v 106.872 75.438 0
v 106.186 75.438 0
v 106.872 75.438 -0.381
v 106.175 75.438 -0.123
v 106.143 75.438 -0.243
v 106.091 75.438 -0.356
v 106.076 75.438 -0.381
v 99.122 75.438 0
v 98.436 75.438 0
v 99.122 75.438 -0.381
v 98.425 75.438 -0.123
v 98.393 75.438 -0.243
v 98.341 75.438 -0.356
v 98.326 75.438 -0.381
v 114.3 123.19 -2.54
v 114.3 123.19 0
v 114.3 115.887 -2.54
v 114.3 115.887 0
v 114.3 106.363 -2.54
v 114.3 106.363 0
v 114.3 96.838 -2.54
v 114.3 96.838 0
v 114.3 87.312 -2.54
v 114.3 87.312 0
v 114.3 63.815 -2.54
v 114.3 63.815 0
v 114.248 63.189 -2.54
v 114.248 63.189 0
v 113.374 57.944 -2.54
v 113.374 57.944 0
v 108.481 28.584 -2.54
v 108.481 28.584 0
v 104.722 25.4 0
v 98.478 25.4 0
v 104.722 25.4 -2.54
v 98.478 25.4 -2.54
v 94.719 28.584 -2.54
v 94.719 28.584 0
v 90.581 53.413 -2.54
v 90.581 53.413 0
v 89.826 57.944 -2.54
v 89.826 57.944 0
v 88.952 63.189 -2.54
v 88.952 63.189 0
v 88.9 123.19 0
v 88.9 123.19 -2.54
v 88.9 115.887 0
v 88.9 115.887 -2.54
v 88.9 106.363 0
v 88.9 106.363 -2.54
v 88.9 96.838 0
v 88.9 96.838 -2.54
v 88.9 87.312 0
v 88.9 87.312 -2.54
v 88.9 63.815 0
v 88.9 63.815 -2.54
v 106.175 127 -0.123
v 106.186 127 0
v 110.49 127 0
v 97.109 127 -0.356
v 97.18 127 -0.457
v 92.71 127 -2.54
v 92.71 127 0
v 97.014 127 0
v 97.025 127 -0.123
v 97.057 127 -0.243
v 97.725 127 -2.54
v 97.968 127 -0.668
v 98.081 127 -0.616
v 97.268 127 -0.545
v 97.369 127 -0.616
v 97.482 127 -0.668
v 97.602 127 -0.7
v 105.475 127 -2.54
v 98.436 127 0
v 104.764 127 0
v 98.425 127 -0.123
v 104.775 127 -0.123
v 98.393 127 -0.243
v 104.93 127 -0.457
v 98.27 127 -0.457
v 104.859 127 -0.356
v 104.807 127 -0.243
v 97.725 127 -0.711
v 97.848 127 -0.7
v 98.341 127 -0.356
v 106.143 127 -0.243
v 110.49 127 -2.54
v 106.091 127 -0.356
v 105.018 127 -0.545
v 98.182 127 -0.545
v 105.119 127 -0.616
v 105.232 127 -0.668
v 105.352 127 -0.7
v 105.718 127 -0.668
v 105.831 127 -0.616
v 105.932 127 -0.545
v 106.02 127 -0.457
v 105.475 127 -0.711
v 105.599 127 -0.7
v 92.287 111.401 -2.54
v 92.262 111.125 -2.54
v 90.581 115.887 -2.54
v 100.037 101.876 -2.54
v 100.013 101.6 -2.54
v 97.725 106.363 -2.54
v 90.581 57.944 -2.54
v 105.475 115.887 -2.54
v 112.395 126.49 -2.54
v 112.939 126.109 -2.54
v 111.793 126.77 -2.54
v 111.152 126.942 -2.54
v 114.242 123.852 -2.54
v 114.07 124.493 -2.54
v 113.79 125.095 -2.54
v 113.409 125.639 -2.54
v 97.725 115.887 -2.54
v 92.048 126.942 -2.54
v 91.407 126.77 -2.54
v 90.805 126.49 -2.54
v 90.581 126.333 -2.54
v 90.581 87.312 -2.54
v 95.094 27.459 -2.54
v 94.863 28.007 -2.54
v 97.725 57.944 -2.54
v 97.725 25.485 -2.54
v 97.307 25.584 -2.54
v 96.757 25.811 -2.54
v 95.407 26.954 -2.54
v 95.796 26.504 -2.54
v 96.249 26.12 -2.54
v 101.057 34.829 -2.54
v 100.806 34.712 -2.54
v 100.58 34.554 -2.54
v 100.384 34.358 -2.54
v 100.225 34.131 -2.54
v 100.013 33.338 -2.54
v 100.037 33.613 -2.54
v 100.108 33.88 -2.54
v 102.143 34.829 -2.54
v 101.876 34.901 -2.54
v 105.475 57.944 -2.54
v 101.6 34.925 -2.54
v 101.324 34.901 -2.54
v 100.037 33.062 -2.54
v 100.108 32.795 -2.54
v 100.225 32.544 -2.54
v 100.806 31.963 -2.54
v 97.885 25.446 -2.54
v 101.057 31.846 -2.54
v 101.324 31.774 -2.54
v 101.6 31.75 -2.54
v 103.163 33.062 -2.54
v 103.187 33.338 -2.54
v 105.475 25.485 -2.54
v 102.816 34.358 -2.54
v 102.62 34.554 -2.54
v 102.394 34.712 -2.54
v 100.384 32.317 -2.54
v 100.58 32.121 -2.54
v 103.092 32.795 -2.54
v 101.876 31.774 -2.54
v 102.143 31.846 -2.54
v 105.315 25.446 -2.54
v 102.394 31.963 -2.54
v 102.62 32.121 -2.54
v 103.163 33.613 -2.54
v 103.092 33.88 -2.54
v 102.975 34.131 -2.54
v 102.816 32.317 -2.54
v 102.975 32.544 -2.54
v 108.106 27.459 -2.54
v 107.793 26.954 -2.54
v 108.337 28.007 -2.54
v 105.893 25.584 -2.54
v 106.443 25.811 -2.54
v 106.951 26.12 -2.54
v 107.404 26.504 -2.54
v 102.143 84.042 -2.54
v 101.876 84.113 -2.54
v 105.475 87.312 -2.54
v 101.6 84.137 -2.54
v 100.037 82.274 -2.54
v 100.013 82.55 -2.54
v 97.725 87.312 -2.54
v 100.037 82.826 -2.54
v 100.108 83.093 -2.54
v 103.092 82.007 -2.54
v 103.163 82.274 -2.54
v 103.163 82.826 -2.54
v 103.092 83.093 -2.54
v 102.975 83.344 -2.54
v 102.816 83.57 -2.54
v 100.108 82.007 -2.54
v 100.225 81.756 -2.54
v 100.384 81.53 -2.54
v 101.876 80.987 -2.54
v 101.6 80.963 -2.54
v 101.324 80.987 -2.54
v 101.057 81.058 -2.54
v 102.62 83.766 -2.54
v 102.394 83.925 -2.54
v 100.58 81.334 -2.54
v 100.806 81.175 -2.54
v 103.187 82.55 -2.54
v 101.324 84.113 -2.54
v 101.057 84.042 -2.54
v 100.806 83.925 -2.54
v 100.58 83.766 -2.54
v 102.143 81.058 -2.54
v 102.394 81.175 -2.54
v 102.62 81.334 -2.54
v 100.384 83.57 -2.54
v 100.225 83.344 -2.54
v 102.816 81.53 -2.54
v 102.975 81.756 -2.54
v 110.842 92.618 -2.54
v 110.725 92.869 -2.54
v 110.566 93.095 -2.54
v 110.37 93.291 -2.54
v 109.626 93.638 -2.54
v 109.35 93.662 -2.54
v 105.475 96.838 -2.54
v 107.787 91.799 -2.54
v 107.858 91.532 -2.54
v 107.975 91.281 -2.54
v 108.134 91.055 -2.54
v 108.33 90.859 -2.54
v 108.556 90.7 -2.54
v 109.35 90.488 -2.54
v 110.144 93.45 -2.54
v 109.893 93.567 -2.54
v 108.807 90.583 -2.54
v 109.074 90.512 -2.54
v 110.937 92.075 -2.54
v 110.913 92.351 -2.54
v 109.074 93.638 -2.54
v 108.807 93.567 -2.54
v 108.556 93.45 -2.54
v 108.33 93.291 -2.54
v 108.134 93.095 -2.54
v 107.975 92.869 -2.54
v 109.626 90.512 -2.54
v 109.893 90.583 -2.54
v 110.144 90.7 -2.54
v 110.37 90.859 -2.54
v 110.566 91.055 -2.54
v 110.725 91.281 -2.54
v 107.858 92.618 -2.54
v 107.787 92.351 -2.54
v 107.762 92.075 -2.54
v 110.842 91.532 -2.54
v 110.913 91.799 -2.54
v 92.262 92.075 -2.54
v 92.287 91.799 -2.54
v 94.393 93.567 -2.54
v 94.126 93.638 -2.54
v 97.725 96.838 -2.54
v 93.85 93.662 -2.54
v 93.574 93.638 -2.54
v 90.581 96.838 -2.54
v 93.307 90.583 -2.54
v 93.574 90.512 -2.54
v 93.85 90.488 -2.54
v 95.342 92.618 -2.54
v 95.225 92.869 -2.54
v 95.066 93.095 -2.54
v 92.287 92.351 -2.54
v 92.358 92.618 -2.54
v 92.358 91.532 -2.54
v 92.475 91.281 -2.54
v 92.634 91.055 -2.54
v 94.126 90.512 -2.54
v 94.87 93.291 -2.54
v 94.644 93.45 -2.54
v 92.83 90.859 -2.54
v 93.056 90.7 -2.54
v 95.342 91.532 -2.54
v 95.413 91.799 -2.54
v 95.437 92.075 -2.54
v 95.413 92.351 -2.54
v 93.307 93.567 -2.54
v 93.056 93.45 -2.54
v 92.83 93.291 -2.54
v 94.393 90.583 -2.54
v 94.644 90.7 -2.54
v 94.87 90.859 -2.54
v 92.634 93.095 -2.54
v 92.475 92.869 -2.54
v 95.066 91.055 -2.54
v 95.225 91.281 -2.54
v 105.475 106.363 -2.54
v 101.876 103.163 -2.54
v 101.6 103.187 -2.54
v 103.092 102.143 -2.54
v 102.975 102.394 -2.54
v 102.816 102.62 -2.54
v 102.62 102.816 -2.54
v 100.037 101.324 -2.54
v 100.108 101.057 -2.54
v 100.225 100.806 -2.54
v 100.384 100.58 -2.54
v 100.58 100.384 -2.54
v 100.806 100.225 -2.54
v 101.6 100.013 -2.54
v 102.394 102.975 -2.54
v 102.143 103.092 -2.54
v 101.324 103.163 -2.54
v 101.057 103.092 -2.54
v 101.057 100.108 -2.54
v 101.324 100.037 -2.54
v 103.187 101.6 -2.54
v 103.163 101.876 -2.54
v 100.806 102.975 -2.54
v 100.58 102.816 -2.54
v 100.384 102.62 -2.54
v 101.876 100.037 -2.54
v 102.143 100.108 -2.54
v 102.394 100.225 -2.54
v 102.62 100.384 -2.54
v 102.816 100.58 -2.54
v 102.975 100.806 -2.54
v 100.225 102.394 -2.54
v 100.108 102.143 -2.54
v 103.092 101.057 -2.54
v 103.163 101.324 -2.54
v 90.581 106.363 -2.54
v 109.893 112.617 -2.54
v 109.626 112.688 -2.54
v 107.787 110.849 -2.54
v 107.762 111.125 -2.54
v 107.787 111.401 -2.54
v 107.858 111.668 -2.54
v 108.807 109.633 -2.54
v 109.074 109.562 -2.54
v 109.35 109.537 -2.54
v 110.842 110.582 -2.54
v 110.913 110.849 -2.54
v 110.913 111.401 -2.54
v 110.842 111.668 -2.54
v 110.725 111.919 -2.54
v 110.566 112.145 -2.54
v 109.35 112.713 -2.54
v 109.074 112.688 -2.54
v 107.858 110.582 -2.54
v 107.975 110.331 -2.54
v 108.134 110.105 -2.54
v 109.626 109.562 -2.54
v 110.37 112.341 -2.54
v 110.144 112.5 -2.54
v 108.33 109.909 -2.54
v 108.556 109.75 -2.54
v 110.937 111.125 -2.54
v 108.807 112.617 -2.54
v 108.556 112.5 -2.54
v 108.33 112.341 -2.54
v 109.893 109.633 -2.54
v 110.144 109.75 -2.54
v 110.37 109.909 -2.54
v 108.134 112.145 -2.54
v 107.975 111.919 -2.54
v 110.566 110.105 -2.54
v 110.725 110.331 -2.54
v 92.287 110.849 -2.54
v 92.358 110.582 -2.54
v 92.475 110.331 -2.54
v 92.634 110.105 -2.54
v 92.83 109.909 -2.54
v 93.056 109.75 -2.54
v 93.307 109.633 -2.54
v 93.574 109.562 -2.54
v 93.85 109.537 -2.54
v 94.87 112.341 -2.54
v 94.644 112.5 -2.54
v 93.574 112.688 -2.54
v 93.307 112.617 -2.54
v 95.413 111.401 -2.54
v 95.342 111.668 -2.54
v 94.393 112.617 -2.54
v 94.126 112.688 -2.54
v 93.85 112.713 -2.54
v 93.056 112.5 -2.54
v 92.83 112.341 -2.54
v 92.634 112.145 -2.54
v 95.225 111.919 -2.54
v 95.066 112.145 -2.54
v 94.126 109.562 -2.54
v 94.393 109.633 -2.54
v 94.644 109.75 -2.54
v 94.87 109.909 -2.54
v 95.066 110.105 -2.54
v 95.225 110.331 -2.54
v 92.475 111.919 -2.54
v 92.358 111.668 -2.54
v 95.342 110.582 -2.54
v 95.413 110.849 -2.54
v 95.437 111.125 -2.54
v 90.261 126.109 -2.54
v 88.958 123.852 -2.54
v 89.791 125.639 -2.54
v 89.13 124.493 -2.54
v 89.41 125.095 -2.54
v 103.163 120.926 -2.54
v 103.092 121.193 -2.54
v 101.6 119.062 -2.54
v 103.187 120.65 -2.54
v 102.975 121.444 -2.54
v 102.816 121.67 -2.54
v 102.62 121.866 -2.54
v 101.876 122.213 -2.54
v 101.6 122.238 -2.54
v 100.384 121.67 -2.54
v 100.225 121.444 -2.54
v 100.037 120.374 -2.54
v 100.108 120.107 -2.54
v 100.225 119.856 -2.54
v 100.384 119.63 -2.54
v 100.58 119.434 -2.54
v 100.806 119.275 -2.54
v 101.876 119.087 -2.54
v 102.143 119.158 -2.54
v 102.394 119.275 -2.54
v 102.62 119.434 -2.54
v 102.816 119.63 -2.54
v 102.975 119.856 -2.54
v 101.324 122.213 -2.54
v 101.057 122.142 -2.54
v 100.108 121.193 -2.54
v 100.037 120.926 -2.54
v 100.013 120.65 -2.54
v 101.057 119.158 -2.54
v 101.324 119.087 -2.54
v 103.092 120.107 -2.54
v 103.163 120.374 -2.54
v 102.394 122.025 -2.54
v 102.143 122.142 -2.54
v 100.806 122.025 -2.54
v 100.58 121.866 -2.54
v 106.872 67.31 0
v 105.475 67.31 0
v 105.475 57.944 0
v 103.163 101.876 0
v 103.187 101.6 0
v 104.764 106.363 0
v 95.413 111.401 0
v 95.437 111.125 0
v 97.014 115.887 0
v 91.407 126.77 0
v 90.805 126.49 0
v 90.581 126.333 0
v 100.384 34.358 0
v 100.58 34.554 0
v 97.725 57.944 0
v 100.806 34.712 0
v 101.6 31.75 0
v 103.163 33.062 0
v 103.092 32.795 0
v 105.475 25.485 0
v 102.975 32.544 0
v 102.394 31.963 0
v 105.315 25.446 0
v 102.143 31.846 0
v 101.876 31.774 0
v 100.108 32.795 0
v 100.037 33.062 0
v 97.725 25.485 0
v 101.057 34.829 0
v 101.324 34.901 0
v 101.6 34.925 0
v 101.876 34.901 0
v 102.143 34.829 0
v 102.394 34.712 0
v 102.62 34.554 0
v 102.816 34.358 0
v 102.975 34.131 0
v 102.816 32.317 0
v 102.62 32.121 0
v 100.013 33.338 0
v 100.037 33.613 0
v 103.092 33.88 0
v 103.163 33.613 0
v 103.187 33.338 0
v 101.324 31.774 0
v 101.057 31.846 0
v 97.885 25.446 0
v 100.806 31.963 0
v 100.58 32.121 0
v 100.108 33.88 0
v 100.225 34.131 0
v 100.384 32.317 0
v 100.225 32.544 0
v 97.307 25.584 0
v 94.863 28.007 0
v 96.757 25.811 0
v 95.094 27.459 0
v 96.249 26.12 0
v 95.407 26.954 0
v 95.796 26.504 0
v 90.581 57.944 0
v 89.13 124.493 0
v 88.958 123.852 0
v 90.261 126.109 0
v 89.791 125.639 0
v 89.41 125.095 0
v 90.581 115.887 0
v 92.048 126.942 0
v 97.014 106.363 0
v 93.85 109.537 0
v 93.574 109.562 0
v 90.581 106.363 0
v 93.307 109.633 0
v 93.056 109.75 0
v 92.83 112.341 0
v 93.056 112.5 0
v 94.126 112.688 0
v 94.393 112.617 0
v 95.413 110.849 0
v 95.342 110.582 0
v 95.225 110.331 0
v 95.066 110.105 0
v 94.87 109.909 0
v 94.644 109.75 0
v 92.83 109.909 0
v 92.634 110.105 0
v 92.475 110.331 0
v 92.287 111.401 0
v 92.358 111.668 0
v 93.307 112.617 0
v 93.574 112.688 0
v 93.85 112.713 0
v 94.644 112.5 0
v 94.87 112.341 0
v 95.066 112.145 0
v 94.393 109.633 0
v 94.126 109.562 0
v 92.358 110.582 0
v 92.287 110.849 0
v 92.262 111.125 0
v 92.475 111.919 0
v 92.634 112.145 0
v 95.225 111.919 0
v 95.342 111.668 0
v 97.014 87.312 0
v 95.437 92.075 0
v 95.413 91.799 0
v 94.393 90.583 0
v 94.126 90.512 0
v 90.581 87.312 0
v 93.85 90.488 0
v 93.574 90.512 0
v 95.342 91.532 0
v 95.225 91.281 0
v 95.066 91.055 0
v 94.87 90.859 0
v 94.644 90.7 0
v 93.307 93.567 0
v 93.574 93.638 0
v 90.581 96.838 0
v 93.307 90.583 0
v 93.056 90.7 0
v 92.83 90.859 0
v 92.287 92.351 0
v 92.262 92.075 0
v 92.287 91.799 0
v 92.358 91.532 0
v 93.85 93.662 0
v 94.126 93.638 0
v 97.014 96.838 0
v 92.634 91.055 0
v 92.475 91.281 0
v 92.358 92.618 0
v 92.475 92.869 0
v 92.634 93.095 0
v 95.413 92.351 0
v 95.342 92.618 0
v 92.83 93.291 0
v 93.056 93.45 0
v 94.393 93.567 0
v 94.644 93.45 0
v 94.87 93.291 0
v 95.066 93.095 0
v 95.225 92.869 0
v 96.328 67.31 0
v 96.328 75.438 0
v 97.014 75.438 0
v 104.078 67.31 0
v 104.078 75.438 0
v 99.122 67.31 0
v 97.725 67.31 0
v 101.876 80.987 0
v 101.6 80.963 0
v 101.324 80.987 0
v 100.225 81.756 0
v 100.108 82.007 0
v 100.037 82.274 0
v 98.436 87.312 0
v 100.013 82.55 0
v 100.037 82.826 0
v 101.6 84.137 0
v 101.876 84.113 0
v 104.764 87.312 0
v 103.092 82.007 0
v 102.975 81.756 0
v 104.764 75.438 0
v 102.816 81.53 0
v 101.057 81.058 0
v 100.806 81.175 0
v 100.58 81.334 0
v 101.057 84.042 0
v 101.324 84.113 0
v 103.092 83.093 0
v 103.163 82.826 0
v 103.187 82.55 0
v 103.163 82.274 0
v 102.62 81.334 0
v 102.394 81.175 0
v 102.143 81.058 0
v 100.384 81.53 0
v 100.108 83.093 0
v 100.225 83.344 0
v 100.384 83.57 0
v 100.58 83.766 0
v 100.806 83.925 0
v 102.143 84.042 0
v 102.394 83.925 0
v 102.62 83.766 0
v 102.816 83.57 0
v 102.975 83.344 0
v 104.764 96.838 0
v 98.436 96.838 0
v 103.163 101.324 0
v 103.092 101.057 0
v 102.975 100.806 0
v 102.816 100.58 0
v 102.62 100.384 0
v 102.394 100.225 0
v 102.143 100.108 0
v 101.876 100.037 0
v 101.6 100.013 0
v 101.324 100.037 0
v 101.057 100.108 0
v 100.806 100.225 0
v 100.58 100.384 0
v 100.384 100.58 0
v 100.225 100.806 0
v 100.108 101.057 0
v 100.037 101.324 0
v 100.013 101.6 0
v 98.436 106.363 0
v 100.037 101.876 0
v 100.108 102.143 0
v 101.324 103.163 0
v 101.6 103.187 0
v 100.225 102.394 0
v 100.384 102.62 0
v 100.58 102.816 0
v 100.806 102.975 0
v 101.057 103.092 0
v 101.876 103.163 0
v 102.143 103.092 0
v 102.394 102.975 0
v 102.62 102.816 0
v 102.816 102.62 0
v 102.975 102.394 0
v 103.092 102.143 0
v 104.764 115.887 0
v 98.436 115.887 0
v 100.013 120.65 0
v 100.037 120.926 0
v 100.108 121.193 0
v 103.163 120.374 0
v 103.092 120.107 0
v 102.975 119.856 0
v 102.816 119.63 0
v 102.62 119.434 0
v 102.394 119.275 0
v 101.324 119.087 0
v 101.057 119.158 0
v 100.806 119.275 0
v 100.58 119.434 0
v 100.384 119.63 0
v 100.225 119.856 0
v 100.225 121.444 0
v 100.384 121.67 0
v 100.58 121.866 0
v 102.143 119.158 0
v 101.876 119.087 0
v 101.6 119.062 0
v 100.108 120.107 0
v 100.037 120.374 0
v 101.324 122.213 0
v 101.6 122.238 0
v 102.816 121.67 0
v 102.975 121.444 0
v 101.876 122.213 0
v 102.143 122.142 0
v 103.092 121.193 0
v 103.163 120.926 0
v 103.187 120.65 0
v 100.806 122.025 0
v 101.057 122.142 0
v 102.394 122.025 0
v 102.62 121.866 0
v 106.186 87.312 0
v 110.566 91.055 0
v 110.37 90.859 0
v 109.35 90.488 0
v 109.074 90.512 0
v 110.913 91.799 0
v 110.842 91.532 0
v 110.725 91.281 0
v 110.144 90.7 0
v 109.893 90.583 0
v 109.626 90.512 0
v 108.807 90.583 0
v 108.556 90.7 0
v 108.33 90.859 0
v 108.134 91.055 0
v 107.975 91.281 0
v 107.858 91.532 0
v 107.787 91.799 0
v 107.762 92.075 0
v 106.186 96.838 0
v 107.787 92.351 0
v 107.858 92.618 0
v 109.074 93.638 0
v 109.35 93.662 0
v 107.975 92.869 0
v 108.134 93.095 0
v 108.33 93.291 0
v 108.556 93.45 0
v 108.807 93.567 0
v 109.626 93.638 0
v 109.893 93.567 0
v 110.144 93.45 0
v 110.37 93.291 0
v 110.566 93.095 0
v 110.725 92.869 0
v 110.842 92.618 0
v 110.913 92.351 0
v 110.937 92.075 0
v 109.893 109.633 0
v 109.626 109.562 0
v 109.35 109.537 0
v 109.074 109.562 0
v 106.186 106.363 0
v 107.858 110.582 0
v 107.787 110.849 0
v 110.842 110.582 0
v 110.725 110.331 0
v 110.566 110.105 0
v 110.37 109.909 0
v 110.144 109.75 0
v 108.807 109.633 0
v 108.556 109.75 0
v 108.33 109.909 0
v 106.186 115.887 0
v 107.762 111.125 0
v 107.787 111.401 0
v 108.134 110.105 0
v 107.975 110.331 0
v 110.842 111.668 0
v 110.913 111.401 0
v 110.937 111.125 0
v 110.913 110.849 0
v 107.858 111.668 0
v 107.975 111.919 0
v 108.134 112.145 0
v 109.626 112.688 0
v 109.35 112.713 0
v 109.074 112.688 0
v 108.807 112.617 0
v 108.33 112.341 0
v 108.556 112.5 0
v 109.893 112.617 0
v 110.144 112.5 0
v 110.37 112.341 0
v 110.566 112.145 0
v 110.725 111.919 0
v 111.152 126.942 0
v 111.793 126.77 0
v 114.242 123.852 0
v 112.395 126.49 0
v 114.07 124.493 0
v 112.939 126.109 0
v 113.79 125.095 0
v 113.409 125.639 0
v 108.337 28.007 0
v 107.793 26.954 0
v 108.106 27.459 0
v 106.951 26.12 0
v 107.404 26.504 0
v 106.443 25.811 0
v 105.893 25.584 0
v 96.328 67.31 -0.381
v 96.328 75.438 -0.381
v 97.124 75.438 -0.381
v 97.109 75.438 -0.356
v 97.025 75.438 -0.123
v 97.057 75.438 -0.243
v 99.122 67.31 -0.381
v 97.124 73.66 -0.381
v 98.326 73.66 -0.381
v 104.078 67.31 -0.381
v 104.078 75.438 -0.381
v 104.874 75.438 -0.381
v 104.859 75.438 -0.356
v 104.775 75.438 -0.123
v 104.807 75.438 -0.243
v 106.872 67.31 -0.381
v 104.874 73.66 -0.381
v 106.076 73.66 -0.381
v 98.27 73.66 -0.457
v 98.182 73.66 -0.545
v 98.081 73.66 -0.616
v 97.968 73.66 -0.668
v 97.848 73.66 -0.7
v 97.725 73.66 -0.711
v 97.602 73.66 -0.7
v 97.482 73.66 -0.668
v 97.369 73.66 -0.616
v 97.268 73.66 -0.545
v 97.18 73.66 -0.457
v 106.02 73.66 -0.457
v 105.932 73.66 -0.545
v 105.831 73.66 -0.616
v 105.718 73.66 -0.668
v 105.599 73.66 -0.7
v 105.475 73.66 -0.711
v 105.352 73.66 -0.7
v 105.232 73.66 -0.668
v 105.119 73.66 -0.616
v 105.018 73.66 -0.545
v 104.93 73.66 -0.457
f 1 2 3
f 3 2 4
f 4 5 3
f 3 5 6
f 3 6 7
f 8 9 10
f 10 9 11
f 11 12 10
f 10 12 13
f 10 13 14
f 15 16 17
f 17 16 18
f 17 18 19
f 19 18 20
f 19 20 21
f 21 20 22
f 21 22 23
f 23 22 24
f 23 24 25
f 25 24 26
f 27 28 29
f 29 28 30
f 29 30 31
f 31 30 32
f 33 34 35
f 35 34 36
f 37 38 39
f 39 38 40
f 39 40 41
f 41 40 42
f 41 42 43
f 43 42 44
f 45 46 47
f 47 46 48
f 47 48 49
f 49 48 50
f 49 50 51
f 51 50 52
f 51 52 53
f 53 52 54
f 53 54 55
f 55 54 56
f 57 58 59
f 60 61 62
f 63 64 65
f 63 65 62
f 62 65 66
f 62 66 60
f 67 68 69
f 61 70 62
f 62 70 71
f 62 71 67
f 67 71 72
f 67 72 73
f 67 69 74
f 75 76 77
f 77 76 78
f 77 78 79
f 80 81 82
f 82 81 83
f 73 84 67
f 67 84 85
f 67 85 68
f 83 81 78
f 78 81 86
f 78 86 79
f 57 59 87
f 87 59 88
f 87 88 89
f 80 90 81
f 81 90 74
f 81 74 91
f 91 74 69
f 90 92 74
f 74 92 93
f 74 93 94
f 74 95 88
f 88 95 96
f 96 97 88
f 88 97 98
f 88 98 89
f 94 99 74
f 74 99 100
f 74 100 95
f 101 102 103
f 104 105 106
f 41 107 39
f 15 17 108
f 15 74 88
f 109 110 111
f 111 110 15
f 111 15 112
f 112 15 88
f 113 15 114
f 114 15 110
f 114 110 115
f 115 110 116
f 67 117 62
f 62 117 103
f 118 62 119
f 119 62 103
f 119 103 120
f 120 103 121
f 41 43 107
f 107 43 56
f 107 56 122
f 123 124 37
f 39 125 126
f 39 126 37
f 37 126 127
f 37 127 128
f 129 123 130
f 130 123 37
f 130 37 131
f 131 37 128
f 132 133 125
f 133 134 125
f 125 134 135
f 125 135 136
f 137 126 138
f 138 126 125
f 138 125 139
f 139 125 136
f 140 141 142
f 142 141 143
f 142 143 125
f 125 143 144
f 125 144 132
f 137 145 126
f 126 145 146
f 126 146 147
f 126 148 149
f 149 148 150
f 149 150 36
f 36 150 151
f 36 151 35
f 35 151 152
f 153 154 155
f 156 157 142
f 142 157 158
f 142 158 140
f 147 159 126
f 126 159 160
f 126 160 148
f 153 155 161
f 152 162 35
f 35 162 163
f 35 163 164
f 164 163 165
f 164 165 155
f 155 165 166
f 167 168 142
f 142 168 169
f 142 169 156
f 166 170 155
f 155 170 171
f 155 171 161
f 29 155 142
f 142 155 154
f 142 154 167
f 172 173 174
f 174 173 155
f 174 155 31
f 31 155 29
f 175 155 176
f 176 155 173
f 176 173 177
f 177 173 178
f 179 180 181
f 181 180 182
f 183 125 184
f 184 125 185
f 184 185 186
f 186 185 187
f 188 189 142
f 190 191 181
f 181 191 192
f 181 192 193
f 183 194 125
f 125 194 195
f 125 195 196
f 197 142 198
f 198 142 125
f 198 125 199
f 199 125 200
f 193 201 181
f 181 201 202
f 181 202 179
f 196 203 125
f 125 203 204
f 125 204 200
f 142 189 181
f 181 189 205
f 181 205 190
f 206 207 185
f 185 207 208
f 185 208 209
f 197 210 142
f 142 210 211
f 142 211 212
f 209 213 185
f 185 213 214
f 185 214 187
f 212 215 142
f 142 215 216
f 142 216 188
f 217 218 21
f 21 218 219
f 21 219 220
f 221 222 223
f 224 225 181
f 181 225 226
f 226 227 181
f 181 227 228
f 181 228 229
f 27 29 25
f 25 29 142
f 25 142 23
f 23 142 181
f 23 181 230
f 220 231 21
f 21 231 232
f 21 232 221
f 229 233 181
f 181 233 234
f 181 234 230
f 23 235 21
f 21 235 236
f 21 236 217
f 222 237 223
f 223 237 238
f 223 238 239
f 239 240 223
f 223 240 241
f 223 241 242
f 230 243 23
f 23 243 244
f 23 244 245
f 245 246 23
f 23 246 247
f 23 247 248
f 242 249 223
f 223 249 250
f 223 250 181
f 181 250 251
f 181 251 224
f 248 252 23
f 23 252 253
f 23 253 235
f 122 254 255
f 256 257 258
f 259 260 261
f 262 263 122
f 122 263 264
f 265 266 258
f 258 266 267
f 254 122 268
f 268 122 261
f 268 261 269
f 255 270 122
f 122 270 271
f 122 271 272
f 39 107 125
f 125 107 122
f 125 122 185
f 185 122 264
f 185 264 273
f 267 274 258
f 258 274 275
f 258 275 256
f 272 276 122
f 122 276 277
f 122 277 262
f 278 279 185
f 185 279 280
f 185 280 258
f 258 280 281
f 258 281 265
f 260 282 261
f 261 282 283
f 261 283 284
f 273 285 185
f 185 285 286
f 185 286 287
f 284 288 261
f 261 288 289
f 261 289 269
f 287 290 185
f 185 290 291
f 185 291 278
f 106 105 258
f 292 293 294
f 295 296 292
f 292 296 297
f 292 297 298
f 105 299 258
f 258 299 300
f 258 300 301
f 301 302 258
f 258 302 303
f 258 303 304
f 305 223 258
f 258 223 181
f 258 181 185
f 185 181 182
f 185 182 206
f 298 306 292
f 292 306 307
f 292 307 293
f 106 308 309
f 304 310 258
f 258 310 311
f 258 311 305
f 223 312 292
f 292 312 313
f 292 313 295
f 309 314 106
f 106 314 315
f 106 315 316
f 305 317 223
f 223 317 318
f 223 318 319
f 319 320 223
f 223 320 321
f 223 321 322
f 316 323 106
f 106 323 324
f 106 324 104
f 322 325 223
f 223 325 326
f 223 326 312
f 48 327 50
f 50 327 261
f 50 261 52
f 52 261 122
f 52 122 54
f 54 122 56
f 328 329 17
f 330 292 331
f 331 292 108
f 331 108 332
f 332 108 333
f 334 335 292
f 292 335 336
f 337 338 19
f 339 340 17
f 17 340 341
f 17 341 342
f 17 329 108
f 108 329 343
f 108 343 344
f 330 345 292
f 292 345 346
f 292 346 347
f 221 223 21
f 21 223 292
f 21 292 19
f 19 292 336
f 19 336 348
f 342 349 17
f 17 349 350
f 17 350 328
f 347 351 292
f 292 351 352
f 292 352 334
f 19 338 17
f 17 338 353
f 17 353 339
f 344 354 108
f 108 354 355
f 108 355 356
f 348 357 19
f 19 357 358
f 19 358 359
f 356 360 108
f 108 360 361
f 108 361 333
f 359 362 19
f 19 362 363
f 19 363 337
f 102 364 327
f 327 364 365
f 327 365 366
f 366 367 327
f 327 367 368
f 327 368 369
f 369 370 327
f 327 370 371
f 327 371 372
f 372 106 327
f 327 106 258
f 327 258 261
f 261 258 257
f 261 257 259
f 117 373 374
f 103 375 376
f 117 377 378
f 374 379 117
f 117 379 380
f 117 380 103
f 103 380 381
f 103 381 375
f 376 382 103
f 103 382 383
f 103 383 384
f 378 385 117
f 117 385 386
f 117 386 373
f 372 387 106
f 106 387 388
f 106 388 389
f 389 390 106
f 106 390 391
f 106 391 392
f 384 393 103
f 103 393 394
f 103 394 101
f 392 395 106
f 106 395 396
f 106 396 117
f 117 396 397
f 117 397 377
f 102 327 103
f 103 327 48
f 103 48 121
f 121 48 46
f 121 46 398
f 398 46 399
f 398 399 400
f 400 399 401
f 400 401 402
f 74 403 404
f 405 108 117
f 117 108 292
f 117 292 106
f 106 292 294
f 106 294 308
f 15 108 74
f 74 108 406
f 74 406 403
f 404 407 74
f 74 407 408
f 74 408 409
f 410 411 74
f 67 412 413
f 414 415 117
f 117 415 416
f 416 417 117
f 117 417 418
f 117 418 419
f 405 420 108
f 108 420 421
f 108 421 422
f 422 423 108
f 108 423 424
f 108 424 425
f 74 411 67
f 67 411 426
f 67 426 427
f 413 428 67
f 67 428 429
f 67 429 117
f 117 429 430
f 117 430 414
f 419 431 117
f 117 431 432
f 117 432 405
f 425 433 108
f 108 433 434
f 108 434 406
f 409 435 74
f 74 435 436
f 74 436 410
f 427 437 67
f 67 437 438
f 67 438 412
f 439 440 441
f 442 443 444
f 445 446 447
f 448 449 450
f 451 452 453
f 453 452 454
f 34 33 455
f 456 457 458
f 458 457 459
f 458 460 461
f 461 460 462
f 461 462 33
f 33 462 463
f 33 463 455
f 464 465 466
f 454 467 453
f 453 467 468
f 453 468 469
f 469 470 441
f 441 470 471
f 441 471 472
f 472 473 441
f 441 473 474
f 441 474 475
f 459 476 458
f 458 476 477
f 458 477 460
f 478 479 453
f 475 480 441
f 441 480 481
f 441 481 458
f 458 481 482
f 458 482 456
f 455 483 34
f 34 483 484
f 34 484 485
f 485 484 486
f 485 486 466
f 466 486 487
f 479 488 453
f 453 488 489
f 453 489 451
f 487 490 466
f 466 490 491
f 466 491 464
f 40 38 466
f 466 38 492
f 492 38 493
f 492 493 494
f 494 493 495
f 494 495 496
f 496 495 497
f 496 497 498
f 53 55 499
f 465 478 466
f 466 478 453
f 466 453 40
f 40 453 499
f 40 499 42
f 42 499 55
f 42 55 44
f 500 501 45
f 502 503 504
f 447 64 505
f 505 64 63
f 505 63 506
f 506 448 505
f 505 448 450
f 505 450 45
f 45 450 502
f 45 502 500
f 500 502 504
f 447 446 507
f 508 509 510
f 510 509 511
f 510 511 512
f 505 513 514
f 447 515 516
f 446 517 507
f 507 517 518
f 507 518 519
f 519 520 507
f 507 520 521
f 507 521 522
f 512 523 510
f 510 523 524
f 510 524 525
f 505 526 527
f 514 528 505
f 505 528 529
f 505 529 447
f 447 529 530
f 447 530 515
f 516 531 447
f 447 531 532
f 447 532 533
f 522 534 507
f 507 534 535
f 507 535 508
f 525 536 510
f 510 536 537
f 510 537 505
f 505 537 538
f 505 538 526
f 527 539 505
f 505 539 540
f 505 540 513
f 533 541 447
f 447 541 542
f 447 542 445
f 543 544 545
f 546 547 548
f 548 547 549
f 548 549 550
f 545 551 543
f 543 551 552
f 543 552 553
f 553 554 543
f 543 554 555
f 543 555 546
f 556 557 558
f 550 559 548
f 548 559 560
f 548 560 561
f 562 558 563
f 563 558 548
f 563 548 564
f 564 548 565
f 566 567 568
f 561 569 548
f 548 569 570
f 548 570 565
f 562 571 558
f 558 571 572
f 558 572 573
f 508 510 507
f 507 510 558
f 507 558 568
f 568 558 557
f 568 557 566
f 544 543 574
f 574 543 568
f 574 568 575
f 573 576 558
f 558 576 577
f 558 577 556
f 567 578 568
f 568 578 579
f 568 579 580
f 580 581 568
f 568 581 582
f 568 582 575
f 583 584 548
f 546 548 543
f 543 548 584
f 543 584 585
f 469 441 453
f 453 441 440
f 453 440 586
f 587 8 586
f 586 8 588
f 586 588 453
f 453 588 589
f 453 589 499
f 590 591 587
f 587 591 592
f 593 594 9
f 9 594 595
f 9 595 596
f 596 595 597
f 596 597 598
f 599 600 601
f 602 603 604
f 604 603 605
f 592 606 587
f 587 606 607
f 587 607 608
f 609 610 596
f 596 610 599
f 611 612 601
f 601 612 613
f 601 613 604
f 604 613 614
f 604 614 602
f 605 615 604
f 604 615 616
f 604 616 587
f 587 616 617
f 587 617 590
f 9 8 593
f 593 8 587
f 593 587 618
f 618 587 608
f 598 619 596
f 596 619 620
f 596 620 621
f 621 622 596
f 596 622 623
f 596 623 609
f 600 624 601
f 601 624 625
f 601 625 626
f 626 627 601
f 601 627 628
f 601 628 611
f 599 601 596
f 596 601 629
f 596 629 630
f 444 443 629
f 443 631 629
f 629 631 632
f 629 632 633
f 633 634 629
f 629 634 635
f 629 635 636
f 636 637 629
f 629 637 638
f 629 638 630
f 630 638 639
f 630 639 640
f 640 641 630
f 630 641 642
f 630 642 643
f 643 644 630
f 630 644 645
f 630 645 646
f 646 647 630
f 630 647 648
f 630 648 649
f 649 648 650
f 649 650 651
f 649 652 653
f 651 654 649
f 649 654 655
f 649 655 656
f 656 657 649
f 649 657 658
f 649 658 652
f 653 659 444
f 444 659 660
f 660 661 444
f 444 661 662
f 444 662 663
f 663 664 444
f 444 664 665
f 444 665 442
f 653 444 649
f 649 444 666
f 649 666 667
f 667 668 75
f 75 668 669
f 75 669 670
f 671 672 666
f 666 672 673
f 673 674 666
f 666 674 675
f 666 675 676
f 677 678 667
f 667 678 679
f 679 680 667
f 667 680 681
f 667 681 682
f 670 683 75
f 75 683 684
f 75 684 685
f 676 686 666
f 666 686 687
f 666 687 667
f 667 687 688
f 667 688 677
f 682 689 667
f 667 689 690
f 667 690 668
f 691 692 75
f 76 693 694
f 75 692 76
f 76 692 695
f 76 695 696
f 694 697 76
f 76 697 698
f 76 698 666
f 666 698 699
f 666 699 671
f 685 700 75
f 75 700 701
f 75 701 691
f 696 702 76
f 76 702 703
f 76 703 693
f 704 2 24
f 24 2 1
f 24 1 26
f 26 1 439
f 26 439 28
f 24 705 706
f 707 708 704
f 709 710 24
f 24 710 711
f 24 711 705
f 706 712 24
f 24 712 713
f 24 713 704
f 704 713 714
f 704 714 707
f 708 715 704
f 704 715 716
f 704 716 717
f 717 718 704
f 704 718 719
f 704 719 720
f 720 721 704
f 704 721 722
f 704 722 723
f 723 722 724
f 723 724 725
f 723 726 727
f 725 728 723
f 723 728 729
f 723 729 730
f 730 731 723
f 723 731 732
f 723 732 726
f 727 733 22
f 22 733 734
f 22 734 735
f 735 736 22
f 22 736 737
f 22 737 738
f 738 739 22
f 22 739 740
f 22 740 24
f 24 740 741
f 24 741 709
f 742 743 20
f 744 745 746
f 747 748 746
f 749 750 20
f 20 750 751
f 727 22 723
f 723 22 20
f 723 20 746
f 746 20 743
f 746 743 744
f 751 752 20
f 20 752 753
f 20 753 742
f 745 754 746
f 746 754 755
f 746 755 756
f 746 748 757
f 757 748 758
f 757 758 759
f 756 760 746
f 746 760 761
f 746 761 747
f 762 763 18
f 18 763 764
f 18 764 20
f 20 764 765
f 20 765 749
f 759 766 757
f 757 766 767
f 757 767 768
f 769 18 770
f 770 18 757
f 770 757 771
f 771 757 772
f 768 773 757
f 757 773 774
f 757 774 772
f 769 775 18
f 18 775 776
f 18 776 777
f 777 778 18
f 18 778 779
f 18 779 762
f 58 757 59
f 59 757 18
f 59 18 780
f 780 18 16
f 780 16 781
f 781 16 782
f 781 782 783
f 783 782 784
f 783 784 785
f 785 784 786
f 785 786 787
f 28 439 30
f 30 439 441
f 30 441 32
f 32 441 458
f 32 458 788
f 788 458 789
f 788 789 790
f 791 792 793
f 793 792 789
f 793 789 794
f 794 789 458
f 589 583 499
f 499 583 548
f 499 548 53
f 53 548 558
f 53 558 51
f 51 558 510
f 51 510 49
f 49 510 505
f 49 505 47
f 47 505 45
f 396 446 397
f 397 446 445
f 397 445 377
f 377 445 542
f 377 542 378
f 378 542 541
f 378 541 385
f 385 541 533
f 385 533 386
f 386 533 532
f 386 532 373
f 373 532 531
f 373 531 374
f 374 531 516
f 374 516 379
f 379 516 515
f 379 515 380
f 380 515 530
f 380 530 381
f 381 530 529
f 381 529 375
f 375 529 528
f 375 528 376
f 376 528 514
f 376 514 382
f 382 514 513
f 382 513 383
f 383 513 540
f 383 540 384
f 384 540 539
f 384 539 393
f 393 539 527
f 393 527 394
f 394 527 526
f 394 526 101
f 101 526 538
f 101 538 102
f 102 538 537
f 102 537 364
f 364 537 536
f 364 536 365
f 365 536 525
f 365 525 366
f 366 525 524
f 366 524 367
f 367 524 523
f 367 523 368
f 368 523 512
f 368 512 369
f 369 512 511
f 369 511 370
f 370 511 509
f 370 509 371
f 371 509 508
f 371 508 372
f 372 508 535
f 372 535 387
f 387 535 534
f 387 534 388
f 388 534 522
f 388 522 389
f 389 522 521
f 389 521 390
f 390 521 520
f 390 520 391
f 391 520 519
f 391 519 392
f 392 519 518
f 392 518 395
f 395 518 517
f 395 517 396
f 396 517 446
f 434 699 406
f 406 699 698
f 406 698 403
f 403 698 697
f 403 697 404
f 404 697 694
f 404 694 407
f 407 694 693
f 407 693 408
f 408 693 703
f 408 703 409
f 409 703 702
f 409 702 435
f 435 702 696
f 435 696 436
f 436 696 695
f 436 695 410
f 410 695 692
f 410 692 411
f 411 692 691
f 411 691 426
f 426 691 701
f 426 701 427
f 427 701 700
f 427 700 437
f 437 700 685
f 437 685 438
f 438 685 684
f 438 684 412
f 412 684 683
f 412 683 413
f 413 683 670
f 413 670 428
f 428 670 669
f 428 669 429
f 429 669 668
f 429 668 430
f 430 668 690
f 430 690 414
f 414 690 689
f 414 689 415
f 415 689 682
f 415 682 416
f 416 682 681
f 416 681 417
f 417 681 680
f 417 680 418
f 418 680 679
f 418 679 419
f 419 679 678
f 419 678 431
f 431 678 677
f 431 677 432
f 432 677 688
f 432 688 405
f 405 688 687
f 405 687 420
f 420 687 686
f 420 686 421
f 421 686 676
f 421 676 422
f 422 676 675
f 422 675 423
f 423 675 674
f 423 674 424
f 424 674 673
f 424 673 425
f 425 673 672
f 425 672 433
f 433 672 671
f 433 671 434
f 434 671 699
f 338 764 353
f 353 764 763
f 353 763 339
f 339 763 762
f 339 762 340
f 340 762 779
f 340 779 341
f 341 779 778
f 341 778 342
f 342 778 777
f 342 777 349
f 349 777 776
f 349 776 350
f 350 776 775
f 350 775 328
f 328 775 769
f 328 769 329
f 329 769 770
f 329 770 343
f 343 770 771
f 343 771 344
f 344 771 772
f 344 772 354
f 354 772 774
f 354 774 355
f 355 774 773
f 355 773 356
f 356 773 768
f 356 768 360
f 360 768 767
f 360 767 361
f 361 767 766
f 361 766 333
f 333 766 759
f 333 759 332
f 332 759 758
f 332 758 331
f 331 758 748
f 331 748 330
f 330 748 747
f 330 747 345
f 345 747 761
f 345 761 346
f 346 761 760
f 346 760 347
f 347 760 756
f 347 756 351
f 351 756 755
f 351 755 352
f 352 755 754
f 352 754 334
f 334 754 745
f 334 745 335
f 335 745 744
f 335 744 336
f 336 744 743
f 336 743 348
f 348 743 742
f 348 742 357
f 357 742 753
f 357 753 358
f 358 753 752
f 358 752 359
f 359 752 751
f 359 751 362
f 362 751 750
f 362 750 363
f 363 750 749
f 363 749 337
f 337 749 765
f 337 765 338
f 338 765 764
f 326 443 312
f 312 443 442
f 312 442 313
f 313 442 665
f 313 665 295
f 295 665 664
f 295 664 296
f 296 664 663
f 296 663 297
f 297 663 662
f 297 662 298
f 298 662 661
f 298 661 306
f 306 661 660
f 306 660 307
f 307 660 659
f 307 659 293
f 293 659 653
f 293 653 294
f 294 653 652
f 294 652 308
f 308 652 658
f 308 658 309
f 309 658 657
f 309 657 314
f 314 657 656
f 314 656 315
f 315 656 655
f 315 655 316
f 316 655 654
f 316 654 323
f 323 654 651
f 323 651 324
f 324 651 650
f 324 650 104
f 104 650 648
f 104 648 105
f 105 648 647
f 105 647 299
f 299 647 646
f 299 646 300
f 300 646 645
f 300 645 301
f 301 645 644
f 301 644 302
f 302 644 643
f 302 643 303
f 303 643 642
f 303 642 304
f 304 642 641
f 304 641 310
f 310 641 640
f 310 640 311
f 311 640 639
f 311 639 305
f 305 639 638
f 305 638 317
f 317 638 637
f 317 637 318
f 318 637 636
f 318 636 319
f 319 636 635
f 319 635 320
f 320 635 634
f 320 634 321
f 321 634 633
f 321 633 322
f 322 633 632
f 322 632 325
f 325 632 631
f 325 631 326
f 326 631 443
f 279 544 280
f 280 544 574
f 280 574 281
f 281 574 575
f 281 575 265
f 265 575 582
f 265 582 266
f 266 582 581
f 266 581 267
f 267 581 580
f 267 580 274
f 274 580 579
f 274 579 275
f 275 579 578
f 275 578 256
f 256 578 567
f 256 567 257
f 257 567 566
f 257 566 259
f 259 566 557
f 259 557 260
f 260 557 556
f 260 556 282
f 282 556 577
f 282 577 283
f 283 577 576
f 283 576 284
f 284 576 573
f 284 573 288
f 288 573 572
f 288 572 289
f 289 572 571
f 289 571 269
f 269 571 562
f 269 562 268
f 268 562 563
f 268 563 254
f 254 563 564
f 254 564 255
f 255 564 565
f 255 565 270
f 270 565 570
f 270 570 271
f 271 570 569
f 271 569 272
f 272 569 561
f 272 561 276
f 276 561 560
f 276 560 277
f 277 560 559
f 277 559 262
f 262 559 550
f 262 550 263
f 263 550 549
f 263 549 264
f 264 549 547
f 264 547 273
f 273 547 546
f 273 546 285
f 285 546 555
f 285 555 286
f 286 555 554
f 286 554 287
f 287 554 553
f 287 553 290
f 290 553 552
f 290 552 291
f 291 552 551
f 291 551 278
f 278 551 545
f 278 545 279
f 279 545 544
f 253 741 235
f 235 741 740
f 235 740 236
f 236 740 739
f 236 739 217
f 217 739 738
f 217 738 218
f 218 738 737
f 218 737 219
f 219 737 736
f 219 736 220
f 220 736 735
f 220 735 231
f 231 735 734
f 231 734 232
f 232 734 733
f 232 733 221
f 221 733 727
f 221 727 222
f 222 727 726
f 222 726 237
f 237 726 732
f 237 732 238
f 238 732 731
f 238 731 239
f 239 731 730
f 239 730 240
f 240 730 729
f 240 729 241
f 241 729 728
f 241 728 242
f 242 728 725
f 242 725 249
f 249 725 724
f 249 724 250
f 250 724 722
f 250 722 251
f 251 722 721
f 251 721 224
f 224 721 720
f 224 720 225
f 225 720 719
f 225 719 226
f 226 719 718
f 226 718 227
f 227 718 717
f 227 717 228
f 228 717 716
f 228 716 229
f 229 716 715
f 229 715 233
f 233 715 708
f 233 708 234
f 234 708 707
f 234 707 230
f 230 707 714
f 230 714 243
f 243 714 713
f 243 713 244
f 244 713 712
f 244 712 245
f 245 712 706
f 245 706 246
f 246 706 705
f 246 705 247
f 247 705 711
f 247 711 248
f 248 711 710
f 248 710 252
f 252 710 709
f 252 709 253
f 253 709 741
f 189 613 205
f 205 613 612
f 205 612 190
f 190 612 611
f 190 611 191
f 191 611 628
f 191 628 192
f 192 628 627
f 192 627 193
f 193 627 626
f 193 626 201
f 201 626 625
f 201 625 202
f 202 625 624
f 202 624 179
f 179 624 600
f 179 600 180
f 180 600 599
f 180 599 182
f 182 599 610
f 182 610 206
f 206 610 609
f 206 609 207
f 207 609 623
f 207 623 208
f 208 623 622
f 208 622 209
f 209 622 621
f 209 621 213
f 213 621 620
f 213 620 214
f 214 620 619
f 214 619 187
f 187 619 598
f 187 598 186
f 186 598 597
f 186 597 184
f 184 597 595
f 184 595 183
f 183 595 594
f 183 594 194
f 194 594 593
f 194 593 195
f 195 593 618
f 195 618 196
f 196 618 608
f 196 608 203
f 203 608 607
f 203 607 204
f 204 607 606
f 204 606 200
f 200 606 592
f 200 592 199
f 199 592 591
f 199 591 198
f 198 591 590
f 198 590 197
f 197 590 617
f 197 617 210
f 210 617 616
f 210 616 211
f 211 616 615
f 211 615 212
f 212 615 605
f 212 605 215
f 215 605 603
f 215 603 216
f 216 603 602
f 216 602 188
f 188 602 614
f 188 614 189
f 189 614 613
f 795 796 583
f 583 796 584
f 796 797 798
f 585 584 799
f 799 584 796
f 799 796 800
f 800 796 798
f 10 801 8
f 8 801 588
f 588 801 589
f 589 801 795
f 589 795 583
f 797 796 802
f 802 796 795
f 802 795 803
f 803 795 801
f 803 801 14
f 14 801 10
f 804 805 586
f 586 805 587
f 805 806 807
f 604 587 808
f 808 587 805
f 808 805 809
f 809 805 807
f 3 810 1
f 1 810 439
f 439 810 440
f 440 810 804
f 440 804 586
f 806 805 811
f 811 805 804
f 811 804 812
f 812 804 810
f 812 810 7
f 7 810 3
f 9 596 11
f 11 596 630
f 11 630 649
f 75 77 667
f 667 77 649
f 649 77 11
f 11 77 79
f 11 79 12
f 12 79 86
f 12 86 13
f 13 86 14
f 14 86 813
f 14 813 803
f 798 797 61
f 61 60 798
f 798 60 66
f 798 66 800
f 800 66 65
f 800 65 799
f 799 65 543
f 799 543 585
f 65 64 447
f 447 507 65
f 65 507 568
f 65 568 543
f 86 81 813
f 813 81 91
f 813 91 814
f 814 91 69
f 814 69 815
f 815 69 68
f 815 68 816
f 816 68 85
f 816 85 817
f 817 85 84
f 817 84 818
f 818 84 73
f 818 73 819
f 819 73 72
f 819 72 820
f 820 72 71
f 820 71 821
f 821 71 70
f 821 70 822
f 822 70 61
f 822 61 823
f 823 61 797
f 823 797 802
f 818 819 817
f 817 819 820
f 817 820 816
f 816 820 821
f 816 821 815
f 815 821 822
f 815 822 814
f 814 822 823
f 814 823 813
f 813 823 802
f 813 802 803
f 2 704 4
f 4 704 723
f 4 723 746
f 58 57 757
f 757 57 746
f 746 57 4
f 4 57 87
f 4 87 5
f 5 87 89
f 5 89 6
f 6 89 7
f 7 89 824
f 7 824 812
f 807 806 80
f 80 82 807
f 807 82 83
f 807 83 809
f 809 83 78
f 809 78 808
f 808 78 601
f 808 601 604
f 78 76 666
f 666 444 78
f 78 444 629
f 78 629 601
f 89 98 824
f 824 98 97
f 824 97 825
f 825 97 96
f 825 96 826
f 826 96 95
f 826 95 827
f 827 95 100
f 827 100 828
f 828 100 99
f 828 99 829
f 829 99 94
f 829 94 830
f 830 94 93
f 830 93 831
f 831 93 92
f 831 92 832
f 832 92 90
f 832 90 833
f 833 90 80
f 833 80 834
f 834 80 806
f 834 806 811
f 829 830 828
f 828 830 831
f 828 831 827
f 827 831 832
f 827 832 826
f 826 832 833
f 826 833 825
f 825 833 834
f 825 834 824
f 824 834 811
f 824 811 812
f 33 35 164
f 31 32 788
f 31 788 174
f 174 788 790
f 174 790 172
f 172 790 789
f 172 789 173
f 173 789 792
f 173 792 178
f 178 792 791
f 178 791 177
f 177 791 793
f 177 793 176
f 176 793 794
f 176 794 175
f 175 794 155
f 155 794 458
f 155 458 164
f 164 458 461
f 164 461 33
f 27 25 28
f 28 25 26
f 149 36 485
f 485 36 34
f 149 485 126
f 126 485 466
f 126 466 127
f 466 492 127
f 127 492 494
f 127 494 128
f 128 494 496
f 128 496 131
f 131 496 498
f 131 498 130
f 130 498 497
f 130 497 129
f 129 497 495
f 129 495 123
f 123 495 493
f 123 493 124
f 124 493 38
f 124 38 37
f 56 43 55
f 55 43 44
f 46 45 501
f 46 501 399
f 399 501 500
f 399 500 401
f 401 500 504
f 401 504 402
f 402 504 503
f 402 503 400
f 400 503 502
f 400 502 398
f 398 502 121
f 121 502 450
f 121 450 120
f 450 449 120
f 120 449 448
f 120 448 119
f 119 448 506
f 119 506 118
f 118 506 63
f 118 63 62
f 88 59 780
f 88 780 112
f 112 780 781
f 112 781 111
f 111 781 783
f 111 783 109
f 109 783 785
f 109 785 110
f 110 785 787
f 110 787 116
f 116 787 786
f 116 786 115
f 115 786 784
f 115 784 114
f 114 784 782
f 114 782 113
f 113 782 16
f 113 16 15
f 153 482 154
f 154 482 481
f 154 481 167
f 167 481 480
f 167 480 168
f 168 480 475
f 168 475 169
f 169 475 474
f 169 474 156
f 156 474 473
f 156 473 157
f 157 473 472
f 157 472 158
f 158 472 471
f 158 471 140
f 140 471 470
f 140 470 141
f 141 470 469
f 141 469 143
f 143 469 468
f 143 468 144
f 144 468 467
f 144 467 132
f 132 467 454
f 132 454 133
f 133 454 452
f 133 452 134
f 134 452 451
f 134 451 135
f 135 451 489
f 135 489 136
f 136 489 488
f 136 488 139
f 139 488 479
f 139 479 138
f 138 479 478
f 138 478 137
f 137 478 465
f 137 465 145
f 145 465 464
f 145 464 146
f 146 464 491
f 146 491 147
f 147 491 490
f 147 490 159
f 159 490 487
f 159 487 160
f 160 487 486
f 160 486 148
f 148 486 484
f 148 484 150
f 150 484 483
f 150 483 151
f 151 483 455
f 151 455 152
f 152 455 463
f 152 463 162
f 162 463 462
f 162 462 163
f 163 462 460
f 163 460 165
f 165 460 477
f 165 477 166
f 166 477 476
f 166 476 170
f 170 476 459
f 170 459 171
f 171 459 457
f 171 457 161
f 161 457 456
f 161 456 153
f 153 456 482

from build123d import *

# Parameters (mm, degrees)
EXTRUDE1_DEPTH     = 2.54
SKETCH2_R          = 1.5875
CUT_EXTRUDE1_DEPTH = 2.54
SKETCH3_W          = 2.794
SKETCH3_H          = 8.128
CUT_EXTRUDE2_DEPTH = 0.381
SKETCH4_R          = 0.7112
CUT_EXTRUDE3_DEPTH = 53.34
FILLET1_R          = 3.81
SKETCH5_R          = 1.5875
CUT_EXTRUDE4_DEPTH = 2.54


with BuildPart() as part:
    # Sketch1 → Extrude1 (new body)
    with BuildSketch(Plane.XY):
        Polygon((88.9, 127), (88.9, 63.5), (95.25, 25.4), (107.95, 25.4), (114.3, 63.5), (114.3, 127), align=None)
    extrude(amount=-EXTRUDE1_DEPTH)

    # Sketch2 → Cut-Extrude1 (cut)
    with BuildSketch(Plane.XY):
        with Locations((93.850000001, 111.125)):
            Circle(SKETCH2_R)
        with Locations((101.6, 120.65)):
            Circle(SKETCH2_R)
        with Locations((109.349999999, 111.125)):
            Circle(SKETCH2_R)
        with Locations((101.6, 101.6)):
            Circle(SKETCH2_R)
        with Locations((93.850000001, 92.075)):
            Circle(SKETCH2_R)
        with Locations((109.349999999, 92.075)):
            Circle(SKETCH2_R)
        with Locations((101.6, 82.55)):
            Circle(SKETCH2_R)
    extrude(amount=-CUT_EXTRUDE1_DEPTH, mode=Mode.SUBTRACT)

    # Sketch3 → Cut-Extrude2 (cut)
    with BuildSketch(Plane.XY):
        with Locations((97.725, 71.374)):
            Rectangle(SKETCH3_W, SKETCH3_H)
        with Locations((105.475, 71.374)):
            Rectangle(SKETCH3_W, SKETCH3_H)
    extrude(amount=-CUT_EXTRUDE2_DEPTH, mode=Mode.SUBTRACT)

    # Sketch4 → Cut-Extrude3 (cut)
    with BuildSketch(Plane(origin=(0, 127, 0), x_dir=(1, 0, 0), z_dir=(0, 1, 0))):
        with Locations((97.725, 0)):
            Circle(SKETCH4_R)
        with Locations((105.475, 0)):
            Circle(SKETCH4_R)
    extrude(amount=-CUT_EXTRUDE3_DEPTH, mode=Mode.SUBTRACT)

    # Fillet1
    fillet1_edges = [part.edges().sort_by_distance(p)[0] for p in [
        (95.25, 25.4, -1.27),
        (88.9, 63.5, -1.27),
        (88.9, 127, -1.27),
        (114.3, 127, -1.27),
        (114.3, 63.5, -1.27),
        (107.95, 25.4, -1.27),
    ]]
    fillet(fillet1_edges, radius=FILLET1_R)

    # Sketch5 → Cut-Extrude4 (cut)
    with BuildSketch(Plane.XY):
        with Locations((101.6, 33.3375)):
            Circle(SKETCH5_R)
    extrude(amount=-CUT_EXTRUDE4_DEPTH, mode=Mode.SUBTRACT)


solid = part.part
